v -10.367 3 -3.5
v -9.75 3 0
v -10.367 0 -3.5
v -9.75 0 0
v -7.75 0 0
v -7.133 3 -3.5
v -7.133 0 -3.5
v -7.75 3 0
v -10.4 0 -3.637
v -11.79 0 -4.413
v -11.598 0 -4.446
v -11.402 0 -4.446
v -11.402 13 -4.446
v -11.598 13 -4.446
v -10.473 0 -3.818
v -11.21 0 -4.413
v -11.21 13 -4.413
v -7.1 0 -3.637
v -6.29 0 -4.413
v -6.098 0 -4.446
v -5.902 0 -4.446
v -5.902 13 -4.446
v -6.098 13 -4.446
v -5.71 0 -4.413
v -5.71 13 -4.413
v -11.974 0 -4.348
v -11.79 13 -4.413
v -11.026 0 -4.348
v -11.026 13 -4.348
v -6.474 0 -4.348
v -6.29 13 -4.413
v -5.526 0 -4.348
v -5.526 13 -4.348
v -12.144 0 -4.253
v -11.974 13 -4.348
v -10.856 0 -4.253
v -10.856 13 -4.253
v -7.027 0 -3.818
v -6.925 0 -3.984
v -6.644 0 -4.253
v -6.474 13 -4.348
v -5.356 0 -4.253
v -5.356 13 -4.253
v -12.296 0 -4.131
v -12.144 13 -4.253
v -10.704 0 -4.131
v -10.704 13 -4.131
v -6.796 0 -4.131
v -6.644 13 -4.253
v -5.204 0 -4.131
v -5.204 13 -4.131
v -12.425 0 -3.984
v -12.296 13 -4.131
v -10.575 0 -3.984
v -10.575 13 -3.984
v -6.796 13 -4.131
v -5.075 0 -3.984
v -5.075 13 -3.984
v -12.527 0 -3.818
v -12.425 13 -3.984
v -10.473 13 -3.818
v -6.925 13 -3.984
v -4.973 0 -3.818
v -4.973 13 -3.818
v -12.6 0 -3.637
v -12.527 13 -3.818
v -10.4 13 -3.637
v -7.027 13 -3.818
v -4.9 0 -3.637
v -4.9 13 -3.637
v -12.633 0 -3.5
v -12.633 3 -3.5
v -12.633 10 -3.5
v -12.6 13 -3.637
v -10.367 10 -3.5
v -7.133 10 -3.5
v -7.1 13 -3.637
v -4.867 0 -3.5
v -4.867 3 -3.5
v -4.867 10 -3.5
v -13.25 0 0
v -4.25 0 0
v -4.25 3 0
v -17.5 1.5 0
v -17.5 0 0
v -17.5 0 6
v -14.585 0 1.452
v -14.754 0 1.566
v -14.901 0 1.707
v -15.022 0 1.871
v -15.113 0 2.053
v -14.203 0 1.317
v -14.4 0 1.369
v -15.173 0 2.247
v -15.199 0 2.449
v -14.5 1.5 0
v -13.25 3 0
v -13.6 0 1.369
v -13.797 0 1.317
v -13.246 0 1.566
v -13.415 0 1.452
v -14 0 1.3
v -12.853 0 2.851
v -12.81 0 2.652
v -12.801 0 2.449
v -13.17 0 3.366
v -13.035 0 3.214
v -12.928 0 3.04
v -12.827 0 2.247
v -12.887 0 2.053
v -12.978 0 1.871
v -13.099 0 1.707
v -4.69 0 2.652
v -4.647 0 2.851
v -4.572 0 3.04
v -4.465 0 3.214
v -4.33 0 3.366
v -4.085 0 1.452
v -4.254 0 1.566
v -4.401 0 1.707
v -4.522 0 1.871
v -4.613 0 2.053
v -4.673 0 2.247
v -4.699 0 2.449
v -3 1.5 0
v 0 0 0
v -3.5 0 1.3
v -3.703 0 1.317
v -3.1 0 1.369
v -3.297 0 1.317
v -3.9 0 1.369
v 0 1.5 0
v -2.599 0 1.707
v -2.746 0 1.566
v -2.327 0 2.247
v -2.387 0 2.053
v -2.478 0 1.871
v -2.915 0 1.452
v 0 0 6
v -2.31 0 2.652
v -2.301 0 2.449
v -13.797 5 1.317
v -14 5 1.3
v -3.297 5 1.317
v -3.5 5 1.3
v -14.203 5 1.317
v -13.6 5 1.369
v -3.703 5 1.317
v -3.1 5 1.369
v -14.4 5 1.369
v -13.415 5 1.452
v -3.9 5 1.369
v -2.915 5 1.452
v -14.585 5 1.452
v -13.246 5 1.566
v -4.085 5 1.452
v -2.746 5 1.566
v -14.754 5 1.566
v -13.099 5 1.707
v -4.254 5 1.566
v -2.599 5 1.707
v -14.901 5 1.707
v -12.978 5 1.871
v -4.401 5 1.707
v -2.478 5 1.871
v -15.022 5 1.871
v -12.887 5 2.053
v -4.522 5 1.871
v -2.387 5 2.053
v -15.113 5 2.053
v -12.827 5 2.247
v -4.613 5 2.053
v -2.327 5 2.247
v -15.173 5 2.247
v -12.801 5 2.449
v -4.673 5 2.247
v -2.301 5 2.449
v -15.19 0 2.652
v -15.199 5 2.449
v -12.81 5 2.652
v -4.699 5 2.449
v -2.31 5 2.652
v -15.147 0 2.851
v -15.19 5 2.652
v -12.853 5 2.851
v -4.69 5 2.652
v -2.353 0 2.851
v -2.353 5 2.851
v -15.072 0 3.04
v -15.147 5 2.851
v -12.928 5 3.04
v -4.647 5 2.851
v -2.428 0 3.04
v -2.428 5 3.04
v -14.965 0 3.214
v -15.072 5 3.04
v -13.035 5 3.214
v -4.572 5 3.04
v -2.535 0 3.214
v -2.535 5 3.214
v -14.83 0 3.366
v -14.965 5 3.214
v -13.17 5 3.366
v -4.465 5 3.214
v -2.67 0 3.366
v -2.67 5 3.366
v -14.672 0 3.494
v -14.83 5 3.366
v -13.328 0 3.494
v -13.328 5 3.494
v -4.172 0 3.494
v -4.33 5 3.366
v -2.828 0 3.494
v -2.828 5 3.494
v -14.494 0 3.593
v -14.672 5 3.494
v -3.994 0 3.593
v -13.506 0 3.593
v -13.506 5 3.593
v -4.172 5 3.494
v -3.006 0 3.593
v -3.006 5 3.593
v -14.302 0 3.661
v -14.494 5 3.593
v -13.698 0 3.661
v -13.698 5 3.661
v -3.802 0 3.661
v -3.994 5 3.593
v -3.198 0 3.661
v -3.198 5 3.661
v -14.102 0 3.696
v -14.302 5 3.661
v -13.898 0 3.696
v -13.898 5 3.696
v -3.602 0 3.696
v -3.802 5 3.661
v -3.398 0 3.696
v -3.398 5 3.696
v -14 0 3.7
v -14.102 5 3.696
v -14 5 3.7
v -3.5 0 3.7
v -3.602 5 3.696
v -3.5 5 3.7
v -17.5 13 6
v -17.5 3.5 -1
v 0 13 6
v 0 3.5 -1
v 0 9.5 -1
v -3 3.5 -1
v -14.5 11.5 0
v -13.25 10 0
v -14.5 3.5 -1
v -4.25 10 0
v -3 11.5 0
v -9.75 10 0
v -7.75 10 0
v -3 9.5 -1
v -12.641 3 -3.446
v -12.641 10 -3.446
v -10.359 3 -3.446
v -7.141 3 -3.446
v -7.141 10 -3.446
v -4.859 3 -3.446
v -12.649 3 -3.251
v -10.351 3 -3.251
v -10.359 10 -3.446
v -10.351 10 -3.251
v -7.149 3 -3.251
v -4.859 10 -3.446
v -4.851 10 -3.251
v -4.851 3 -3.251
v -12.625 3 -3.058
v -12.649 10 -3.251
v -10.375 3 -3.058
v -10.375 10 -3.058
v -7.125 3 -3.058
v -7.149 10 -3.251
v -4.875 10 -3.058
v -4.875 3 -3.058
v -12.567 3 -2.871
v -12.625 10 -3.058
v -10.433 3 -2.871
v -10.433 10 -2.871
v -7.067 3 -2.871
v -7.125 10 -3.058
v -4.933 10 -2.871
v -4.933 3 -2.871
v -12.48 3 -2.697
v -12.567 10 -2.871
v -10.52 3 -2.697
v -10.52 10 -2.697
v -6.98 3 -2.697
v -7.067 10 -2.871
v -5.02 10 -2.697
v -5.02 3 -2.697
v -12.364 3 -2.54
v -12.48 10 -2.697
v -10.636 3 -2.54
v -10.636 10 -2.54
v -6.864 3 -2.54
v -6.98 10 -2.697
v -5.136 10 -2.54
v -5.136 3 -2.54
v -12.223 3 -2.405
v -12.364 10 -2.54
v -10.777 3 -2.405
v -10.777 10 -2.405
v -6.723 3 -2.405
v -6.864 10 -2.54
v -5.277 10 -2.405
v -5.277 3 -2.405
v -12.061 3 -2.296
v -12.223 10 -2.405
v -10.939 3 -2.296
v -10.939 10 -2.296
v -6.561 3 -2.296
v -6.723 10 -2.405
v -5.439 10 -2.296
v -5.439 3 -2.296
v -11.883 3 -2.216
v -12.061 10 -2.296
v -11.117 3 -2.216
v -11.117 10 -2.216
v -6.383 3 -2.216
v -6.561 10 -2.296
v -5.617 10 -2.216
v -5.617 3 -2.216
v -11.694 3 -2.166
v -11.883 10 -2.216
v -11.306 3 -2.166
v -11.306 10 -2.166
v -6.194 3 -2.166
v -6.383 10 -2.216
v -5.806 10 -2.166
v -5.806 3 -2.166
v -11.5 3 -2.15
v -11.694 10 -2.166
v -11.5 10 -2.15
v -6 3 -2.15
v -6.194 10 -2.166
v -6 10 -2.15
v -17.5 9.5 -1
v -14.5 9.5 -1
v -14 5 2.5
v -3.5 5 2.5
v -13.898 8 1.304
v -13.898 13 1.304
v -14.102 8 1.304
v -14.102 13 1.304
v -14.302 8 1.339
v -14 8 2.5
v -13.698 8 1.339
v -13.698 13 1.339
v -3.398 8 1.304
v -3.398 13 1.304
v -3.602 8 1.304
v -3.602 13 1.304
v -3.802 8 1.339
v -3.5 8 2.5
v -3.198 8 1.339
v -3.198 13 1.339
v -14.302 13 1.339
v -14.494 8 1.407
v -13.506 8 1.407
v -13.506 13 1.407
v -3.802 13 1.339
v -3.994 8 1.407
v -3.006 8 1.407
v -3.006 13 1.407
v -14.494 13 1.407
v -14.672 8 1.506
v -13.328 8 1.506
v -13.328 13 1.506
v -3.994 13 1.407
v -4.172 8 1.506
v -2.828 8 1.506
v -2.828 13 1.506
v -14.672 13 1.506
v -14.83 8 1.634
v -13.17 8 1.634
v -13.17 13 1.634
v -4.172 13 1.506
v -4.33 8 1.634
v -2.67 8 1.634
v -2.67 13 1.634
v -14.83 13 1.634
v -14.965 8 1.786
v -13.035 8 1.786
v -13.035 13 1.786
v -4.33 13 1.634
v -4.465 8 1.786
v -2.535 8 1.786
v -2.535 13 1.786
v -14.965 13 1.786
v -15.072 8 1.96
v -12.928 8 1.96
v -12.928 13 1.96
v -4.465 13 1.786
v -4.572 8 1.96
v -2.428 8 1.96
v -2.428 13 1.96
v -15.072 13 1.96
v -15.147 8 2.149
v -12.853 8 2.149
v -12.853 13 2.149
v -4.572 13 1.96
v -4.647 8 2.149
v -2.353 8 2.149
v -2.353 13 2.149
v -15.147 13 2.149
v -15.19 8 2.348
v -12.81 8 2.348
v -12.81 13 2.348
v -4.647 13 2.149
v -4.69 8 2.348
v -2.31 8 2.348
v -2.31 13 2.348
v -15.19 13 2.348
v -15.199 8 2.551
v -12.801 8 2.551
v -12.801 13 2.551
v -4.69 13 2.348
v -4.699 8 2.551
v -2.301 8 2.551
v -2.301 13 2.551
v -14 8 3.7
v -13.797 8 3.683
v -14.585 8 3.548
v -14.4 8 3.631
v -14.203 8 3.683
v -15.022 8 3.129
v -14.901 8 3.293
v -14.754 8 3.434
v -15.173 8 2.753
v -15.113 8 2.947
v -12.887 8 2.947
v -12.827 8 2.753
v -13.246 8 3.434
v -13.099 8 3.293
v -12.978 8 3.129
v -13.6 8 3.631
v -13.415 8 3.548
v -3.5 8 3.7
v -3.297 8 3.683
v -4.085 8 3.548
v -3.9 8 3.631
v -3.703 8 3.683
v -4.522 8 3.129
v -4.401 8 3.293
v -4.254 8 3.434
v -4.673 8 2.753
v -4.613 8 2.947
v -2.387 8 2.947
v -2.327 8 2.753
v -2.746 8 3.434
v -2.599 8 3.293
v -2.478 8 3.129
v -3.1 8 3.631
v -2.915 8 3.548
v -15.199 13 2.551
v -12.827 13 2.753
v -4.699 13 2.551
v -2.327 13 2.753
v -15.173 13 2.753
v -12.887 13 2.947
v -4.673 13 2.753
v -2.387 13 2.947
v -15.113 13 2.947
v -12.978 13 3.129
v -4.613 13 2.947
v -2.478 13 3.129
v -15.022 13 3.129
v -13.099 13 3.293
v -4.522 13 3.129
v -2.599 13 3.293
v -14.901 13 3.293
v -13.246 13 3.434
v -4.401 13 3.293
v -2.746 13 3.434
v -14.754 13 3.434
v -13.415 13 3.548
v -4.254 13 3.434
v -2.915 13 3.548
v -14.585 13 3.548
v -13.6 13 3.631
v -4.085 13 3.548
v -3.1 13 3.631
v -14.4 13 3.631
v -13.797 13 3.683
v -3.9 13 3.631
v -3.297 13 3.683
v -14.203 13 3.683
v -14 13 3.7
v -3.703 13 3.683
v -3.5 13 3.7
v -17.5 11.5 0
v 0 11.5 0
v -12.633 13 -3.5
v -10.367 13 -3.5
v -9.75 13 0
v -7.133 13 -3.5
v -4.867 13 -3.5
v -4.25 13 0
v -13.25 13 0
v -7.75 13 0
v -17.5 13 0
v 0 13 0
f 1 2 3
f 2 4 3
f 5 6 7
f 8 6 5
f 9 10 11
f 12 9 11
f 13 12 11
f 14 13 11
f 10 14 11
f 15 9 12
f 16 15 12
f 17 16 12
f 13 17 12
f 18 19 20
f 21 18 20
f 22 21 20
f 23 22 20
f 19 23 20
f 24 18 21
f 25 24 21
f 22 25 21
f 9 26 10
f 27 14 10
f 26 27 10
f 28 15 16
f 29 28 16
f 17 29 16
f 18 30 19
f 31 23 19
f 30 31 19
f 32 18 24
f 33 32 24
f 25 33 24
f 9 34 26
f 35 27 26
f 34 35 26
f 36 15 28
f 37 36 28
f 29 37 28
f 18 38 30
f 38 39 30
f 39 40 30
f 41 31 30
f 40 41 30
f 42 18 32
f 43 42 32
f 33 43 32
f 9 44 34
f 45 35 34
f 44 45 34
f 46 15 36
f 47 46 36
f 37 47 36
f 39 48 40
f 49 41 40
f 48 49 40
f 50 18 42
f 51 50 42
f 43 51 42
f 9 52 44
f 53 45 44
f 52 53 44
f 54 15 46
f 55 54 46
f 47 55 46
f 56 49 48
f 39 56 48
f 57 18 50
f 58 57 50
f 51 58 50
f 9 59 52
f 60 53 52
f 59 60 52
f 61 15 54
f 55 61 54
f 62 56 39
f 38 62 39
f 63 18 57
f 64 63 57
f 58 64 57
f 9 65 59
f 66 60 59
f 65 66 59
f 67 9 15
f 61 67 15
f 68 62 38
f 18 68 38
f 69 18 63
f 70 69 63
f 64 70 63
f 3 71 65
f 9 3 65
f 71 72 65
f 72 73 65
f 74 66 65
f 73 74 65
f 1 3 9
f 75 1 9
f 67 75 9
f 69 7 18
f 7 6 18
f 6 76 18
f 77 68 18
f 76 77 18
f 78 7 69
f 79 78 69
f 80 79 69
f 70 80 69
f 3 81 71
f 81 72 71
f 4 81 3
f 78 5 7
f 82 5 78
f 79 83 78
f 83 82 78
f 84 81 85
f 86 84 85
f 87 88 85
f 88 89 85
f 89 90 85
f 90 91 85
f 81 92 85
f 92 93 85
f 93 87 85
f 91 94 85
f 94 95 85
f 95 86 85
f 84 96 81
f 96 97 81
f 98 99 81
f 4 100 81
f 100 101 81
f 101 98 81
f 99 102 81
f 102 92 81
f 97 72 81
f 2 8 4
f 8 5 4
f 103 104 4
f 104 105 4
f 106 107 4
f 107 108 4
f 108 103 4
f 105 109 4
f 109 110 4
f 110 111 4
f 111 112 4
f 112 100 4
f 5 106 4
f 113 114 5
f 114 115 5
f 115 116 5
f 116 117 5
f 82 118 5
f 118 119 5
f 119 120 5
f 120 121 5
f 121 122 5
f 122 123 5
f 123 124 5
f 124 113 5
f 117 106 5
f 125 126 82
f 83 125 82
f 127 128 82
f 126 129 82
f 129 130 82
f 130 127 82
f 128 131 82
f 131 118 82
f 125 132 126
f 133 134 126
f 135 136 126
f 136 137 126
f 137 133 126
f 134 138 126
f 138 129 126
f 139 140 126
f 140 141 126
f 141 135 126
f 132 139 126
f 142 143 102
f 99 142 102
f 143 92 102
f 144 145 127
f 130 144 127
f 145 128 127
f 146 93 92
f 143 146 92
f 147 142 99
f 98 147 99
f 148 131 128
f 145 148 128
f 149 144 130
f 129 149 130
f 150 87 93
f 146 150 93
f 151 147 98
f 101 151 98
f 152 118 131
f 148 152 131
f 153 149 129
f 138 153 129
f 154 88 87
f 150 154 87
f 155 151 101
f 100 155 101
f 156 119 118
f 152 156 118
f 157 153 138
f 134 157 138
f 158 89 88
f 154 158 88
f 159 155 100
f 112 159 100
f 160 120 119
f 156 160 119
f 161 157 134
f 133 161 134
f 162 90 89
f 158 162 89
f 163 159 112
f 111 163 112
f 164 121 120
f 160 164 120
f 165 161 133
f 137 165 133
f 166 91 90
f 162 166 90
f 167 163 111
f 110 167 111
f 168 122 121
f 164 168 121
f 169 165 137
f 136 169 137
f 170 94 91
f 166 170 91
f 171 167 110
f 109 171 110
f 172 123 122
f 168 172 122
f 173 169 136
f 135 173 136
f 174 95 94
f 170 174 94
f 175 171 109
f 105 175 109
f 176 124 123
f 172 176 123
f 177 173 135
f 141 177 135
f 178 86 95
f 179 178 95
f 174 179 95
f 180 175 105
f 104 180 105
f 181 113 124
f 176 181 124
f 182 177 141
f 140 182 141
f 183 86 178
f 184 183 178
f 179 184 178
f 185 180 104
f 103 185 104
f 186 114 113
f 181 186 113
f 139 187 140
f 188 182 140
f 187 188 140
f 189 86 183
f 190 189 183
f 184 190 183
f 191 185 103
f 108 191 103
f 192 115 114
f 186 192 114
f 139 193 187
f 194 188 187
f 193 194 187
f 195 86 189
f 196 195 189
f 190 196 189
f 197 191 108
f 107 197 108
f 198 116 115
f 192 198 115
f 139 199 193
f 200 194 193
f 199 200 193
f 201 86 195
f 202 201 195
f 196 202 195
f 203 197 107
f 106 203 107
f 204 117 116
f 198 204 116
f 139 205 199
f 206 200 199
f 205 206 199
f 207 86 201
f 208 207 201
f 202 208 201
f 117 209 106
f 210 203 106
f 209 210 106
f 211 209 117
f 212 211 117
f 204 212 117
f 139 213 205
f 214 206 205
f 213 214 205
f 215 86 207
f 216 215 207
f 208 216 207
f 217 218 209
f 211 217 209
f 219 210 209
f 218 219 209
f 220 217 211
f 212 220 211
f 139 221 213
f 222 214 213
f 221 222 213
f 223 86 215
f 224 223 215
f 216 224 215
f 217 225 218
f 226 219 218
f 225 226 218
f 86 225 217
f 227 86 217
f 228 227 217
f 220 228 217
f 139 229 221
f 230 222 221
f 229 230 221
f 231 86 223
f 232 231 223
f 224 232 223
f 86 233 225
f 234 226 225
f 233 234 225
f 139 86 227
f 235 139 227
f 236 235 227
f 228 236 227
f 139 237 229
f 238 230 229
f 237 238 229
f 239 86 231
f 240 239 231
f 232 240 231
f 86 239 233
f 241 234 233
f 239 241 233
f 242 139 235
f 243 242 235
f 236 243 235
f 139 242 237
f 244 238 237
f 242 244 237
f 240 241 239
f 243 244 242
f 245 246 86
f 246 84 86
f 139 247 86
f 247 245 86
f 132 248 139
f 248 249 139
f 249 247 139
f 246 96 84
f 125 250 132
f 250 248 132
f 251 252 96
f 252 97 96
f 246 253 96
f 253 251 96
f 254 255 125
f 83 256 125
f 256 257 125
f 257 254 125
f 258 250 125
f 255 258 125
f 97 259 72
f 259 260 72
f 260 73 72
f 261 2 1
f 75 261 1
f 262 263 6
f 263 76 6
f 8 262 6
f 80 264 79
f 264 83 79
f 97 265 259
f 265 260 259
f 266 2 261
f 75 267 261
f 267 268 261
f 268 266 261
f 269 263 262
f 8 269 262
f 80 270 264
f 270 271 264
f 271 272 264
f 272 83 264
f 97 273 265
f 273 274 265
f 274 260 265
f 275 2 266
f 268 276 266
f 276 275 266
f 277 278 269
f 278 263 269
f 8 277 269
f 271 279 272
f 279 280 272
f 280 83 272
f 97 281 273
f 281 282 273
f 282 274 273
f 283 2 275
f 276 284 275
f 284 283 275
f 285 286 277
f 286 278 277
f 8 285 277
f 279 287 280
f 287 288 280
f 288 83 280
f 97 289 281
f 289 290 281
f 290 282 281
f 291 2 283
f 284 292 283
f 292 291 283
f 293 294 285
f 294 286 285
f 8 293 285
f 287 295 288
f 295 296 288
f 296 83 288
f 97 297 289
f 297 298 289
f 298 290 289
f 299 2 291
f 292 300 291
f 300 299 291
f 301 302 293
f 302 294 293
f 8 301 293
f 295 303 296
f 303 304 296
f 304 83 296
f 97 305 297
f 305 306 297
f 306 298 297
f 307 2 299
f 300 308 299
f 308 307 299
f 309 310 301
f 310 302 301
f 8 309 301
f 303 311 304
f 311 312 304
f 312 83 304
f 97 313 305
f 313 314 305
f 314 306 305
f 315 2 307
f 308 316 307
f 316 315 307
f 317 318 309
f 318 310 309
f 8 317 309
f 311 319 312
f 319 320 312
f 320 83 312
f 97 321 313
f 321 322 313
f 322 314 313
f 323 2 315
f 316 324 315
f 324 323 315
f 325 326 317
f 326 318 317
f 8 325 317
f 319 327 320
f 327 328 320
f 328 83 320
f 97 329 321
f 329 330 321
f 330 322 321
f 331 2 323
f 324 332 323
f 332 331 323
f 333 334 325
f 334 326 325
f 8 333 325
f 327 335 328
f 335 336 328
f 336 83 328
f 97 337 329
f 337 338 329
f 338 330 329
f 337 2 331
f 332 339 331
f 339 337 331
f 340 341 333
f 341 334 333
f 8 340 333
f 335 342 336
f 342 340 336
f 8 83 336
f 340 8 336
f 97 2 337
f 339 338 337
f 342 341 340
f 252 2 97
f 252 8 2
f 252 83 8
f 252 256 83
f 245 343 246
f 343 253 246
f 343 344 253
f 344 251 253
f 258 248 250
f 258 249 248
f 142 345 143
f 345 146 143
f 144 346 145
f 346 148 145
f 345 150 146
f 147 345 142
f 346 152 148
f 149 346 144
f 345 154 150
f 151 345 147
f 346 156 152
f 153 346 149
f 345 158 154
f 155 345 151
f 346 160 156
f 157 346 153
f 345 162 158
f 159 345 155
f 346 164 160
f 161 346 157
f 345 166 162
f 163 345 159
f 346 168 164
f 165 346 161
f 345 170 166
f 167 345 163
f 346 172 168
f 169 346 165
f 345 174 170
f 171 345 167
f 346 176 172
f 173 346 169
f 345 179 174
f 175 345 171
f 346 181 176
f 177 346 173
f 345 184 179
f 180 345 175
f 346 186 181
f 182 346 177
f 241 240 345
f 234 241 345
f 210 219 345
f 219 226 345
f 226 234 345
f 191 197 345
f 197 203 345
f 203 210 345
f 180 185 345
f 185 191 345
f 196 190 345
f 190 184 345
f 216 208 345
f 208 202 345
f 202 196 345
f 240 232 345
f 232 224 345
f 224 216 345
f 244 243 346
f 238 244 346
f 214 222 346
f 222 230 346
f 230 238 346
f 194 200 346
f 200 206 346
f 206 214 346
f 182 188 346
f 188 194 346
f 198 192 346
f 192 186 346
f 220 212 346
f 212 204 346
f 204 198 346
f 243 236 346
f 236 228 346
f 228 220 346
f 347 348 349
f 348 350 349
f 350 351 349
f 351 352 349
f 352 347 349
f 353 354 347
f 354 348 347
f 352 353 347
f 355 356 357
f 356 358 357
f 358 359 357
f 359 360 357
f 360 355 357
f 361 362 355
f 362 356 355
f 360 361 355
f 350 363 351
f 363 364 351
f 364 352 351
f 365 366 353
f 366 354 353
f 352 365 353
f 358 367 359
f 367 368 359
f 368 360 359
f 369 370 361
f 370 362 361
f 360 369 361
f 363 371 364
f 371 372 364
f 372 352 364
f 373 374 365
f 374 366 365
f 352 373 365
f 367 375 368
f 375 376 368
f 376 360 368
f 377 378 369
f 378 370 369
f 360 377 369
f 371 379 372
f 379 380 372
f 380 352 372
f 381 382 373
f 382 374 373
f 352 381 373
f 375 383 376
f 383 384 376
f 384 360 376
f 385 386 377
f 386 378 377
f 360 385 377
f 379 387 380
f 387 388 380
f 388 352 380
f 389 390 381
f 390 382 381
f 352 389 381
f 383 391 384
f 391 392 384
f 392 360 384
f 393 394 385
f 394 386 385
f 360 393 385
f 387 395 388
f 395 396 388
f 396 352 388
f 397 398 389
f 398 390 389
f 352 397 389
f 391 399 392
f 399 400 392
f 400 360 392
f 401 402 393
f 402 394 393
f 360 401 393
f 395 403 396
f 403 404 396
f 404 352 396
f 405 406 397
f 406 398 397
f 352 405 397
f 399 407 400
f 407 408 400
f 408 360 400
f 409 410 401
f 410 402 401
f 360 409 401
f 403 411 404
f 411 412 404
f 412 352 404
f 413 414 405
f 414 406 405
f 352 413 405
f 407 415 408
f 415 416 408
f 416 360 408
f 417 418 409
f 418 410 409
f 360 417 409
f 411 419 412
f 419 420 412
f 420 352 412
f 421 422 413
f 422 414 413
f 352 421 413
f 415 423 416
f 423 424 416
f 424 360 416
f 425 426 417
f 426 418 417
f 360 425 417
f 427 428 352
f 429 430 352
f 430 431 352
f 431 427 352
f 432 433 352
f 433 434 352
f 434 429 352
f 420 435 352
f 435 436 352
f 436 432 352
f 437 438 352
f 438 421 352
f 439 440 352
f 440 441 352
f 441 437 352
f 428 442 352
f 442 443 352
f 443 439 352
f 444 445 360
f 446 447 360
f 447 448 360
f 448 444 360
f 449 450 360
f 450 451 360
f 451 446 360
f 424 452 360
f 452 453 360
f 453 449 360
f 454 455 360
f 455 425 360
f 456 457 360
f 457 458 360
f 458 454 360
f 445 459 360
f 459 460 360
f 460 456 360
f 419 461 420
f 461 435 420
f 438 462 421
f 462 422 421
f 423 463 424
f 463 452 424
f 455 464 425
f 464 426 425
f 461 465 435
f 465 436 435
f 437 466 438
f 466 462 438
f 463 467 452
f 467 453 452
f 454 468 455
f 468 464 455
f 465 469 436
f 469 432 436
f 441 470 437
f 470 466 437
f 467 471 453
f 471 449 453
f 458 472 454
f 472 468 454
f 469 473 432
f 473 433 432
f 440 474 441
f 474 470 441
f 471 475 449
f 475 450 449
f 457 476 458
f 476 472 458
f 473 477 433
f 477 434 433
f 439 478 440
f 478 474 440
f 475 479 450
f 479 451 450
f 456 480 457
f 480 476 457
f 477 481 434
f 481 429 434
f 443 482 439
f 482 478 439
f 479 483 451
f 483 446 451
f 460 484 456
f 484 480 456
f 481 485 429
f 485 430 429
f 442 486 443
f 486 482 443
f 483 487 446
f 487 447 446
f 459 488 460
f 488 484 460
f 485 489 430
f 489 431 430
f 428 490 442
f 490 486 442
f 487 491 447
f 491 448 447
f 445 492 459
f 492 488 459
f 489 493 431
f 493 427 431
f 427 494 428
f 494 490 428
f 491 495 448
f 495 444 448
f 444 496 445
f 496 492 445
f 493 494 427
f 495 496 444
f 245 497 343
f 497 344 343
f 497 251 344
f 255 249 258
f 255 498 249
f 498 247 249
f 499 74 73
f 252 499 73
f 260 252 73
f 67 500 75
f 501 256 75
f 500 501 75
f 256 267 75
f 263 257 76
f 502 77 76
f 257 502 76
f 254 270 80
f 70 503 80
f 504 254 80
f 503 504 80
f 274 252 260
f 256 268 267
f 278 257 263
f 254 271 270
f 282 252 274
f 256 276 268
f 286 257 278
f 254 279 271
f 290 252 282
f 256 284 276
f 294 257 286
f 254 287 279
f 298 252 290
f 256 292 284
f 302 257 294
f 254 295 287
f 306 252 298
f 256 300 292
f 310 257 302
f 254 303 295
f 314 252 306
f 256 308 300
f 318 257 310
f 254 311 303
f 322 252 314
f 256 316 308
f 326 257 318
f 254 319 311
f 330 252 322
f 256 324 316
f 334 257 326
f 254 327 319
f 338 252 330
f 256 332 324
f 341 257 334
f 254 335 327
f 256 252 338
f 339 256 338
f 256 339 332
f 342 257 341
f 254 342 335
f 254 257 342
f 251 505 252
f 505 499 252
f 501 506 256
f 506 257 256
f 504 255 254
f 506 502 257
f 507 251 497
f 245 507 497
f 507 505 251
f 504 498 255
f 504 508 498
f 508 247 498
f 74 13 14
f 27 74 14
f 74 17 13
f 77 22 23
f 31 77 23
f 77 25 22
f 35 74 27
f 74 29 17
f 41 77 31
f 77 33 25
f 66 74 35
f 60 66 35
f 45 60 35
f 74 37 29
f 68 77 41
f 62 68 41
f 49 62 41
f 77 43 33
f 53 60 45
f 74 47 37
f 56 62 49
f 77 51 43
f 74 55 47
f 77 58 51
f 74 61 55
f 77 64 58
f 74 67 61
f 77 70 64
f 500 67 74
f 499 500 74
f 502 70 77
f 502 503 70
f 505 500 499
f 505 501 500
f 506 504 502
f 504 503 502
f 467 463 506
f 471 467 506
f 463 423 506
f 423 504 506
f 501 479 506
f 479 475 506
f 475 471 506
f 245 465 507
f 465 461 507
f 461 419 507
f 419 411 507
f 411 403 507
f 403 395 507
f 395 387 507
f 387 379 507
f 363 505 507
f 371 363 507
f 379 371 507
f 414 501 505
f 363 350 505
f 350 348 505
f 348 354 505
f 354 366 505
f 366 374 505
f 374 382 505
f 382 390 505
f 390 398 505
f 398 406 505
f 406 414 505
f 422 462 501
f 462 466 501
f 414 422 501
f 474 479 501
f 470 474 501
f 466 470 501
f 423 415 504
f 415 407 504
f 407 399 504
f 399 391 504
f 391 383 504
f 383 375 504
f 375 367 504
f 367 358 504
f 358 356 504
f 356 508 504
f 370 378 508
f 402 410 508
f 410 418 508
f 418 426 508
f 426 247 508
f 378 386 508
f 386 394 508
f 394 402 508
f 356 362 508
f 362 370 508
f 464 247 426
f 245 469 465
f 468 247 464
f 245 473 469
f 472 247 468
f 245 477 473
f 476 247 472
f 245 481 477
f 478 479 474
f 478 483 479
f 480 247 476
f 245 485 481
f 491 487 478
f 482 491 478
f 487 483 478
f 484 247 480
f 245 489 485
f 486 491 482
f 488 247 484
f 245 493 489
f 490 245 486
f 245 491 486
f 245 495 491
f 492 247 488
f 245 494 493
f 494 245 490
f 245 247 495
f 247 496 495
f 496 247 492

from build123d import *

# Parameters (mm, degrees)
SKETCH_1_W          = 17.5
SKETCH_1_H          = 13
EXTRUDE_1_DEPTH     = 6
EXTRUDE_2_DEPTH     = 3
EXTRUDE_3_REACH     = 23.03
SKETCH_3_R          = 1.150331691
EXTRUDE_4_DEPTH     = 3
SKETCH_6_R          = 1.2
CUT_EXTRUDE_1_DEPTH = 5


with BuildPart() as part:
    # 草圖1 → 填料-伸長1 (new body)
    with BuildSketch(Plane.XY):
        with Locations((-8.75, 6.5)):
            Rectangle(SKETCH_1_W, SKETCH_1_H)
    extrude(amount=EXTRUDE_1_DEPTH)

    # 草圖2 → 填料-伸長2 (add)
    with BuildSketch(Plane(origin=(0, 13, 0), x_dir=(1, 0, 0), z_dir=(0, 1, 0))):
        with BuildLine():
            Line((-12.632855568, 3.5), (-13.25, 0))
            Line((-13.25, 0), (-9.75, 0))
            Line((-9.75, 0), (-10.367144432, 3.5))
            ThreePointArc((-10.367144432, 3.5), (-11.5, 4.450578689), (-12.632855568, 3.5))
        make_face()
        with BuildLine():
            Line((-4.867144432, 3.5), (-4.25, 0))
            Line((-4.25, 0), (-7.75, 0))
            Line((-7.75, 0), (-7.132855568, 3.5))
            ThreePointArc((-7.132855568, 3.5), (-6, 4.450578689), (-4.867144432, 3.5))
        make_face()
    extrude_2 = extrude(amount=-EXTRUDE_2_DEPTH)

    # 鏡射1: 填料-伸長2 across plane
    add(extrude_2.mirror(Plane.ZX.offset(6.5)))

    # 草圖3 → 填料-伸長3 (add, up to next)
    with BuildSketch(Plane(origin=(0, 3, 0), x_dir=(1, 0, 0), z_dir=(0, 1, 0)), mode=Mode.PRIVATE) as extrude_3_sk1:
        with Locations((-11.5, 3.300246998)):
            Circle(SKETCH_3_R)
    extrude_3_tool1 = extrude(extrude_3_sk1.sketch, amount=EXTRUDE_3_REACH, mode=Mode.PRIVATE) - part.part
    # 草圖3 → 填料-伸長3 (add, up to next)
    with BuildSketch(Plane(origin=(0, 3, 0), x_dir=(1, 0, 0), z_dir=(0, 1, 0)), mode=Mode.PRIVATE) as extrude_3_sk2:
        with Locations((-6, 3.300246998)):
            Circle(SKETCH_3_R)
    extrude_3_tool2 = extrude(extrude_3_sk2.sketch, amount=EXTRUDE_3_REACH, mode=Mode.PRIVATE) - part.part
    add(extrude_3_tool1.solids().sort_by_distance((-11.5, 3, -3.300247))[0])
    add(extrude_3_tool2.solids().sort_by_distance((-6, 3, -3.300247))[0])

    # 草圖4 → 填料-伸長4 (add)
    with BuildSketch(Plane.ZY.offset(17.5)):
        Polygon((0, 11.5), (0, 1.5), (-1, 3.5), (-1, 9.5), align=None)
    extrude_4 = extrude(amount=-EXTRUDE_4_DEPTH)

    # 鏡射2: 填料-伸長4 across plane
    add(extrude_4.mirror(Plane(origin=(-8.75, 0, 0), x_dir=(0, 0, 1), z_dir=(1, 0, 0))))

    # 草圖6 → 除料-伸長1 (cut)
    with BuildSketch(Plane(origin=(0, 13, 0), x_dir=(1, 0, 0), z_dir=(0, 1, 0))):
        with Locations((-14, -2.5)):
            Circle(SKETCH_6_R)
        with Locations((-3.5, -2.5)):
            Circle(SKETCH_6_R)
    cut_extrude_1 = extrude(amount=-CUT_EXTRUDE_1_DEPTH, mode=Mode.SUBTRACT)

    # 鏡射3: 除料-伸長1 across plane
    add(cut_extrude_1.mirror(Plane.ZX.offset(6.5)), mode=Mode.SUBTRACT)


solid = part.part
